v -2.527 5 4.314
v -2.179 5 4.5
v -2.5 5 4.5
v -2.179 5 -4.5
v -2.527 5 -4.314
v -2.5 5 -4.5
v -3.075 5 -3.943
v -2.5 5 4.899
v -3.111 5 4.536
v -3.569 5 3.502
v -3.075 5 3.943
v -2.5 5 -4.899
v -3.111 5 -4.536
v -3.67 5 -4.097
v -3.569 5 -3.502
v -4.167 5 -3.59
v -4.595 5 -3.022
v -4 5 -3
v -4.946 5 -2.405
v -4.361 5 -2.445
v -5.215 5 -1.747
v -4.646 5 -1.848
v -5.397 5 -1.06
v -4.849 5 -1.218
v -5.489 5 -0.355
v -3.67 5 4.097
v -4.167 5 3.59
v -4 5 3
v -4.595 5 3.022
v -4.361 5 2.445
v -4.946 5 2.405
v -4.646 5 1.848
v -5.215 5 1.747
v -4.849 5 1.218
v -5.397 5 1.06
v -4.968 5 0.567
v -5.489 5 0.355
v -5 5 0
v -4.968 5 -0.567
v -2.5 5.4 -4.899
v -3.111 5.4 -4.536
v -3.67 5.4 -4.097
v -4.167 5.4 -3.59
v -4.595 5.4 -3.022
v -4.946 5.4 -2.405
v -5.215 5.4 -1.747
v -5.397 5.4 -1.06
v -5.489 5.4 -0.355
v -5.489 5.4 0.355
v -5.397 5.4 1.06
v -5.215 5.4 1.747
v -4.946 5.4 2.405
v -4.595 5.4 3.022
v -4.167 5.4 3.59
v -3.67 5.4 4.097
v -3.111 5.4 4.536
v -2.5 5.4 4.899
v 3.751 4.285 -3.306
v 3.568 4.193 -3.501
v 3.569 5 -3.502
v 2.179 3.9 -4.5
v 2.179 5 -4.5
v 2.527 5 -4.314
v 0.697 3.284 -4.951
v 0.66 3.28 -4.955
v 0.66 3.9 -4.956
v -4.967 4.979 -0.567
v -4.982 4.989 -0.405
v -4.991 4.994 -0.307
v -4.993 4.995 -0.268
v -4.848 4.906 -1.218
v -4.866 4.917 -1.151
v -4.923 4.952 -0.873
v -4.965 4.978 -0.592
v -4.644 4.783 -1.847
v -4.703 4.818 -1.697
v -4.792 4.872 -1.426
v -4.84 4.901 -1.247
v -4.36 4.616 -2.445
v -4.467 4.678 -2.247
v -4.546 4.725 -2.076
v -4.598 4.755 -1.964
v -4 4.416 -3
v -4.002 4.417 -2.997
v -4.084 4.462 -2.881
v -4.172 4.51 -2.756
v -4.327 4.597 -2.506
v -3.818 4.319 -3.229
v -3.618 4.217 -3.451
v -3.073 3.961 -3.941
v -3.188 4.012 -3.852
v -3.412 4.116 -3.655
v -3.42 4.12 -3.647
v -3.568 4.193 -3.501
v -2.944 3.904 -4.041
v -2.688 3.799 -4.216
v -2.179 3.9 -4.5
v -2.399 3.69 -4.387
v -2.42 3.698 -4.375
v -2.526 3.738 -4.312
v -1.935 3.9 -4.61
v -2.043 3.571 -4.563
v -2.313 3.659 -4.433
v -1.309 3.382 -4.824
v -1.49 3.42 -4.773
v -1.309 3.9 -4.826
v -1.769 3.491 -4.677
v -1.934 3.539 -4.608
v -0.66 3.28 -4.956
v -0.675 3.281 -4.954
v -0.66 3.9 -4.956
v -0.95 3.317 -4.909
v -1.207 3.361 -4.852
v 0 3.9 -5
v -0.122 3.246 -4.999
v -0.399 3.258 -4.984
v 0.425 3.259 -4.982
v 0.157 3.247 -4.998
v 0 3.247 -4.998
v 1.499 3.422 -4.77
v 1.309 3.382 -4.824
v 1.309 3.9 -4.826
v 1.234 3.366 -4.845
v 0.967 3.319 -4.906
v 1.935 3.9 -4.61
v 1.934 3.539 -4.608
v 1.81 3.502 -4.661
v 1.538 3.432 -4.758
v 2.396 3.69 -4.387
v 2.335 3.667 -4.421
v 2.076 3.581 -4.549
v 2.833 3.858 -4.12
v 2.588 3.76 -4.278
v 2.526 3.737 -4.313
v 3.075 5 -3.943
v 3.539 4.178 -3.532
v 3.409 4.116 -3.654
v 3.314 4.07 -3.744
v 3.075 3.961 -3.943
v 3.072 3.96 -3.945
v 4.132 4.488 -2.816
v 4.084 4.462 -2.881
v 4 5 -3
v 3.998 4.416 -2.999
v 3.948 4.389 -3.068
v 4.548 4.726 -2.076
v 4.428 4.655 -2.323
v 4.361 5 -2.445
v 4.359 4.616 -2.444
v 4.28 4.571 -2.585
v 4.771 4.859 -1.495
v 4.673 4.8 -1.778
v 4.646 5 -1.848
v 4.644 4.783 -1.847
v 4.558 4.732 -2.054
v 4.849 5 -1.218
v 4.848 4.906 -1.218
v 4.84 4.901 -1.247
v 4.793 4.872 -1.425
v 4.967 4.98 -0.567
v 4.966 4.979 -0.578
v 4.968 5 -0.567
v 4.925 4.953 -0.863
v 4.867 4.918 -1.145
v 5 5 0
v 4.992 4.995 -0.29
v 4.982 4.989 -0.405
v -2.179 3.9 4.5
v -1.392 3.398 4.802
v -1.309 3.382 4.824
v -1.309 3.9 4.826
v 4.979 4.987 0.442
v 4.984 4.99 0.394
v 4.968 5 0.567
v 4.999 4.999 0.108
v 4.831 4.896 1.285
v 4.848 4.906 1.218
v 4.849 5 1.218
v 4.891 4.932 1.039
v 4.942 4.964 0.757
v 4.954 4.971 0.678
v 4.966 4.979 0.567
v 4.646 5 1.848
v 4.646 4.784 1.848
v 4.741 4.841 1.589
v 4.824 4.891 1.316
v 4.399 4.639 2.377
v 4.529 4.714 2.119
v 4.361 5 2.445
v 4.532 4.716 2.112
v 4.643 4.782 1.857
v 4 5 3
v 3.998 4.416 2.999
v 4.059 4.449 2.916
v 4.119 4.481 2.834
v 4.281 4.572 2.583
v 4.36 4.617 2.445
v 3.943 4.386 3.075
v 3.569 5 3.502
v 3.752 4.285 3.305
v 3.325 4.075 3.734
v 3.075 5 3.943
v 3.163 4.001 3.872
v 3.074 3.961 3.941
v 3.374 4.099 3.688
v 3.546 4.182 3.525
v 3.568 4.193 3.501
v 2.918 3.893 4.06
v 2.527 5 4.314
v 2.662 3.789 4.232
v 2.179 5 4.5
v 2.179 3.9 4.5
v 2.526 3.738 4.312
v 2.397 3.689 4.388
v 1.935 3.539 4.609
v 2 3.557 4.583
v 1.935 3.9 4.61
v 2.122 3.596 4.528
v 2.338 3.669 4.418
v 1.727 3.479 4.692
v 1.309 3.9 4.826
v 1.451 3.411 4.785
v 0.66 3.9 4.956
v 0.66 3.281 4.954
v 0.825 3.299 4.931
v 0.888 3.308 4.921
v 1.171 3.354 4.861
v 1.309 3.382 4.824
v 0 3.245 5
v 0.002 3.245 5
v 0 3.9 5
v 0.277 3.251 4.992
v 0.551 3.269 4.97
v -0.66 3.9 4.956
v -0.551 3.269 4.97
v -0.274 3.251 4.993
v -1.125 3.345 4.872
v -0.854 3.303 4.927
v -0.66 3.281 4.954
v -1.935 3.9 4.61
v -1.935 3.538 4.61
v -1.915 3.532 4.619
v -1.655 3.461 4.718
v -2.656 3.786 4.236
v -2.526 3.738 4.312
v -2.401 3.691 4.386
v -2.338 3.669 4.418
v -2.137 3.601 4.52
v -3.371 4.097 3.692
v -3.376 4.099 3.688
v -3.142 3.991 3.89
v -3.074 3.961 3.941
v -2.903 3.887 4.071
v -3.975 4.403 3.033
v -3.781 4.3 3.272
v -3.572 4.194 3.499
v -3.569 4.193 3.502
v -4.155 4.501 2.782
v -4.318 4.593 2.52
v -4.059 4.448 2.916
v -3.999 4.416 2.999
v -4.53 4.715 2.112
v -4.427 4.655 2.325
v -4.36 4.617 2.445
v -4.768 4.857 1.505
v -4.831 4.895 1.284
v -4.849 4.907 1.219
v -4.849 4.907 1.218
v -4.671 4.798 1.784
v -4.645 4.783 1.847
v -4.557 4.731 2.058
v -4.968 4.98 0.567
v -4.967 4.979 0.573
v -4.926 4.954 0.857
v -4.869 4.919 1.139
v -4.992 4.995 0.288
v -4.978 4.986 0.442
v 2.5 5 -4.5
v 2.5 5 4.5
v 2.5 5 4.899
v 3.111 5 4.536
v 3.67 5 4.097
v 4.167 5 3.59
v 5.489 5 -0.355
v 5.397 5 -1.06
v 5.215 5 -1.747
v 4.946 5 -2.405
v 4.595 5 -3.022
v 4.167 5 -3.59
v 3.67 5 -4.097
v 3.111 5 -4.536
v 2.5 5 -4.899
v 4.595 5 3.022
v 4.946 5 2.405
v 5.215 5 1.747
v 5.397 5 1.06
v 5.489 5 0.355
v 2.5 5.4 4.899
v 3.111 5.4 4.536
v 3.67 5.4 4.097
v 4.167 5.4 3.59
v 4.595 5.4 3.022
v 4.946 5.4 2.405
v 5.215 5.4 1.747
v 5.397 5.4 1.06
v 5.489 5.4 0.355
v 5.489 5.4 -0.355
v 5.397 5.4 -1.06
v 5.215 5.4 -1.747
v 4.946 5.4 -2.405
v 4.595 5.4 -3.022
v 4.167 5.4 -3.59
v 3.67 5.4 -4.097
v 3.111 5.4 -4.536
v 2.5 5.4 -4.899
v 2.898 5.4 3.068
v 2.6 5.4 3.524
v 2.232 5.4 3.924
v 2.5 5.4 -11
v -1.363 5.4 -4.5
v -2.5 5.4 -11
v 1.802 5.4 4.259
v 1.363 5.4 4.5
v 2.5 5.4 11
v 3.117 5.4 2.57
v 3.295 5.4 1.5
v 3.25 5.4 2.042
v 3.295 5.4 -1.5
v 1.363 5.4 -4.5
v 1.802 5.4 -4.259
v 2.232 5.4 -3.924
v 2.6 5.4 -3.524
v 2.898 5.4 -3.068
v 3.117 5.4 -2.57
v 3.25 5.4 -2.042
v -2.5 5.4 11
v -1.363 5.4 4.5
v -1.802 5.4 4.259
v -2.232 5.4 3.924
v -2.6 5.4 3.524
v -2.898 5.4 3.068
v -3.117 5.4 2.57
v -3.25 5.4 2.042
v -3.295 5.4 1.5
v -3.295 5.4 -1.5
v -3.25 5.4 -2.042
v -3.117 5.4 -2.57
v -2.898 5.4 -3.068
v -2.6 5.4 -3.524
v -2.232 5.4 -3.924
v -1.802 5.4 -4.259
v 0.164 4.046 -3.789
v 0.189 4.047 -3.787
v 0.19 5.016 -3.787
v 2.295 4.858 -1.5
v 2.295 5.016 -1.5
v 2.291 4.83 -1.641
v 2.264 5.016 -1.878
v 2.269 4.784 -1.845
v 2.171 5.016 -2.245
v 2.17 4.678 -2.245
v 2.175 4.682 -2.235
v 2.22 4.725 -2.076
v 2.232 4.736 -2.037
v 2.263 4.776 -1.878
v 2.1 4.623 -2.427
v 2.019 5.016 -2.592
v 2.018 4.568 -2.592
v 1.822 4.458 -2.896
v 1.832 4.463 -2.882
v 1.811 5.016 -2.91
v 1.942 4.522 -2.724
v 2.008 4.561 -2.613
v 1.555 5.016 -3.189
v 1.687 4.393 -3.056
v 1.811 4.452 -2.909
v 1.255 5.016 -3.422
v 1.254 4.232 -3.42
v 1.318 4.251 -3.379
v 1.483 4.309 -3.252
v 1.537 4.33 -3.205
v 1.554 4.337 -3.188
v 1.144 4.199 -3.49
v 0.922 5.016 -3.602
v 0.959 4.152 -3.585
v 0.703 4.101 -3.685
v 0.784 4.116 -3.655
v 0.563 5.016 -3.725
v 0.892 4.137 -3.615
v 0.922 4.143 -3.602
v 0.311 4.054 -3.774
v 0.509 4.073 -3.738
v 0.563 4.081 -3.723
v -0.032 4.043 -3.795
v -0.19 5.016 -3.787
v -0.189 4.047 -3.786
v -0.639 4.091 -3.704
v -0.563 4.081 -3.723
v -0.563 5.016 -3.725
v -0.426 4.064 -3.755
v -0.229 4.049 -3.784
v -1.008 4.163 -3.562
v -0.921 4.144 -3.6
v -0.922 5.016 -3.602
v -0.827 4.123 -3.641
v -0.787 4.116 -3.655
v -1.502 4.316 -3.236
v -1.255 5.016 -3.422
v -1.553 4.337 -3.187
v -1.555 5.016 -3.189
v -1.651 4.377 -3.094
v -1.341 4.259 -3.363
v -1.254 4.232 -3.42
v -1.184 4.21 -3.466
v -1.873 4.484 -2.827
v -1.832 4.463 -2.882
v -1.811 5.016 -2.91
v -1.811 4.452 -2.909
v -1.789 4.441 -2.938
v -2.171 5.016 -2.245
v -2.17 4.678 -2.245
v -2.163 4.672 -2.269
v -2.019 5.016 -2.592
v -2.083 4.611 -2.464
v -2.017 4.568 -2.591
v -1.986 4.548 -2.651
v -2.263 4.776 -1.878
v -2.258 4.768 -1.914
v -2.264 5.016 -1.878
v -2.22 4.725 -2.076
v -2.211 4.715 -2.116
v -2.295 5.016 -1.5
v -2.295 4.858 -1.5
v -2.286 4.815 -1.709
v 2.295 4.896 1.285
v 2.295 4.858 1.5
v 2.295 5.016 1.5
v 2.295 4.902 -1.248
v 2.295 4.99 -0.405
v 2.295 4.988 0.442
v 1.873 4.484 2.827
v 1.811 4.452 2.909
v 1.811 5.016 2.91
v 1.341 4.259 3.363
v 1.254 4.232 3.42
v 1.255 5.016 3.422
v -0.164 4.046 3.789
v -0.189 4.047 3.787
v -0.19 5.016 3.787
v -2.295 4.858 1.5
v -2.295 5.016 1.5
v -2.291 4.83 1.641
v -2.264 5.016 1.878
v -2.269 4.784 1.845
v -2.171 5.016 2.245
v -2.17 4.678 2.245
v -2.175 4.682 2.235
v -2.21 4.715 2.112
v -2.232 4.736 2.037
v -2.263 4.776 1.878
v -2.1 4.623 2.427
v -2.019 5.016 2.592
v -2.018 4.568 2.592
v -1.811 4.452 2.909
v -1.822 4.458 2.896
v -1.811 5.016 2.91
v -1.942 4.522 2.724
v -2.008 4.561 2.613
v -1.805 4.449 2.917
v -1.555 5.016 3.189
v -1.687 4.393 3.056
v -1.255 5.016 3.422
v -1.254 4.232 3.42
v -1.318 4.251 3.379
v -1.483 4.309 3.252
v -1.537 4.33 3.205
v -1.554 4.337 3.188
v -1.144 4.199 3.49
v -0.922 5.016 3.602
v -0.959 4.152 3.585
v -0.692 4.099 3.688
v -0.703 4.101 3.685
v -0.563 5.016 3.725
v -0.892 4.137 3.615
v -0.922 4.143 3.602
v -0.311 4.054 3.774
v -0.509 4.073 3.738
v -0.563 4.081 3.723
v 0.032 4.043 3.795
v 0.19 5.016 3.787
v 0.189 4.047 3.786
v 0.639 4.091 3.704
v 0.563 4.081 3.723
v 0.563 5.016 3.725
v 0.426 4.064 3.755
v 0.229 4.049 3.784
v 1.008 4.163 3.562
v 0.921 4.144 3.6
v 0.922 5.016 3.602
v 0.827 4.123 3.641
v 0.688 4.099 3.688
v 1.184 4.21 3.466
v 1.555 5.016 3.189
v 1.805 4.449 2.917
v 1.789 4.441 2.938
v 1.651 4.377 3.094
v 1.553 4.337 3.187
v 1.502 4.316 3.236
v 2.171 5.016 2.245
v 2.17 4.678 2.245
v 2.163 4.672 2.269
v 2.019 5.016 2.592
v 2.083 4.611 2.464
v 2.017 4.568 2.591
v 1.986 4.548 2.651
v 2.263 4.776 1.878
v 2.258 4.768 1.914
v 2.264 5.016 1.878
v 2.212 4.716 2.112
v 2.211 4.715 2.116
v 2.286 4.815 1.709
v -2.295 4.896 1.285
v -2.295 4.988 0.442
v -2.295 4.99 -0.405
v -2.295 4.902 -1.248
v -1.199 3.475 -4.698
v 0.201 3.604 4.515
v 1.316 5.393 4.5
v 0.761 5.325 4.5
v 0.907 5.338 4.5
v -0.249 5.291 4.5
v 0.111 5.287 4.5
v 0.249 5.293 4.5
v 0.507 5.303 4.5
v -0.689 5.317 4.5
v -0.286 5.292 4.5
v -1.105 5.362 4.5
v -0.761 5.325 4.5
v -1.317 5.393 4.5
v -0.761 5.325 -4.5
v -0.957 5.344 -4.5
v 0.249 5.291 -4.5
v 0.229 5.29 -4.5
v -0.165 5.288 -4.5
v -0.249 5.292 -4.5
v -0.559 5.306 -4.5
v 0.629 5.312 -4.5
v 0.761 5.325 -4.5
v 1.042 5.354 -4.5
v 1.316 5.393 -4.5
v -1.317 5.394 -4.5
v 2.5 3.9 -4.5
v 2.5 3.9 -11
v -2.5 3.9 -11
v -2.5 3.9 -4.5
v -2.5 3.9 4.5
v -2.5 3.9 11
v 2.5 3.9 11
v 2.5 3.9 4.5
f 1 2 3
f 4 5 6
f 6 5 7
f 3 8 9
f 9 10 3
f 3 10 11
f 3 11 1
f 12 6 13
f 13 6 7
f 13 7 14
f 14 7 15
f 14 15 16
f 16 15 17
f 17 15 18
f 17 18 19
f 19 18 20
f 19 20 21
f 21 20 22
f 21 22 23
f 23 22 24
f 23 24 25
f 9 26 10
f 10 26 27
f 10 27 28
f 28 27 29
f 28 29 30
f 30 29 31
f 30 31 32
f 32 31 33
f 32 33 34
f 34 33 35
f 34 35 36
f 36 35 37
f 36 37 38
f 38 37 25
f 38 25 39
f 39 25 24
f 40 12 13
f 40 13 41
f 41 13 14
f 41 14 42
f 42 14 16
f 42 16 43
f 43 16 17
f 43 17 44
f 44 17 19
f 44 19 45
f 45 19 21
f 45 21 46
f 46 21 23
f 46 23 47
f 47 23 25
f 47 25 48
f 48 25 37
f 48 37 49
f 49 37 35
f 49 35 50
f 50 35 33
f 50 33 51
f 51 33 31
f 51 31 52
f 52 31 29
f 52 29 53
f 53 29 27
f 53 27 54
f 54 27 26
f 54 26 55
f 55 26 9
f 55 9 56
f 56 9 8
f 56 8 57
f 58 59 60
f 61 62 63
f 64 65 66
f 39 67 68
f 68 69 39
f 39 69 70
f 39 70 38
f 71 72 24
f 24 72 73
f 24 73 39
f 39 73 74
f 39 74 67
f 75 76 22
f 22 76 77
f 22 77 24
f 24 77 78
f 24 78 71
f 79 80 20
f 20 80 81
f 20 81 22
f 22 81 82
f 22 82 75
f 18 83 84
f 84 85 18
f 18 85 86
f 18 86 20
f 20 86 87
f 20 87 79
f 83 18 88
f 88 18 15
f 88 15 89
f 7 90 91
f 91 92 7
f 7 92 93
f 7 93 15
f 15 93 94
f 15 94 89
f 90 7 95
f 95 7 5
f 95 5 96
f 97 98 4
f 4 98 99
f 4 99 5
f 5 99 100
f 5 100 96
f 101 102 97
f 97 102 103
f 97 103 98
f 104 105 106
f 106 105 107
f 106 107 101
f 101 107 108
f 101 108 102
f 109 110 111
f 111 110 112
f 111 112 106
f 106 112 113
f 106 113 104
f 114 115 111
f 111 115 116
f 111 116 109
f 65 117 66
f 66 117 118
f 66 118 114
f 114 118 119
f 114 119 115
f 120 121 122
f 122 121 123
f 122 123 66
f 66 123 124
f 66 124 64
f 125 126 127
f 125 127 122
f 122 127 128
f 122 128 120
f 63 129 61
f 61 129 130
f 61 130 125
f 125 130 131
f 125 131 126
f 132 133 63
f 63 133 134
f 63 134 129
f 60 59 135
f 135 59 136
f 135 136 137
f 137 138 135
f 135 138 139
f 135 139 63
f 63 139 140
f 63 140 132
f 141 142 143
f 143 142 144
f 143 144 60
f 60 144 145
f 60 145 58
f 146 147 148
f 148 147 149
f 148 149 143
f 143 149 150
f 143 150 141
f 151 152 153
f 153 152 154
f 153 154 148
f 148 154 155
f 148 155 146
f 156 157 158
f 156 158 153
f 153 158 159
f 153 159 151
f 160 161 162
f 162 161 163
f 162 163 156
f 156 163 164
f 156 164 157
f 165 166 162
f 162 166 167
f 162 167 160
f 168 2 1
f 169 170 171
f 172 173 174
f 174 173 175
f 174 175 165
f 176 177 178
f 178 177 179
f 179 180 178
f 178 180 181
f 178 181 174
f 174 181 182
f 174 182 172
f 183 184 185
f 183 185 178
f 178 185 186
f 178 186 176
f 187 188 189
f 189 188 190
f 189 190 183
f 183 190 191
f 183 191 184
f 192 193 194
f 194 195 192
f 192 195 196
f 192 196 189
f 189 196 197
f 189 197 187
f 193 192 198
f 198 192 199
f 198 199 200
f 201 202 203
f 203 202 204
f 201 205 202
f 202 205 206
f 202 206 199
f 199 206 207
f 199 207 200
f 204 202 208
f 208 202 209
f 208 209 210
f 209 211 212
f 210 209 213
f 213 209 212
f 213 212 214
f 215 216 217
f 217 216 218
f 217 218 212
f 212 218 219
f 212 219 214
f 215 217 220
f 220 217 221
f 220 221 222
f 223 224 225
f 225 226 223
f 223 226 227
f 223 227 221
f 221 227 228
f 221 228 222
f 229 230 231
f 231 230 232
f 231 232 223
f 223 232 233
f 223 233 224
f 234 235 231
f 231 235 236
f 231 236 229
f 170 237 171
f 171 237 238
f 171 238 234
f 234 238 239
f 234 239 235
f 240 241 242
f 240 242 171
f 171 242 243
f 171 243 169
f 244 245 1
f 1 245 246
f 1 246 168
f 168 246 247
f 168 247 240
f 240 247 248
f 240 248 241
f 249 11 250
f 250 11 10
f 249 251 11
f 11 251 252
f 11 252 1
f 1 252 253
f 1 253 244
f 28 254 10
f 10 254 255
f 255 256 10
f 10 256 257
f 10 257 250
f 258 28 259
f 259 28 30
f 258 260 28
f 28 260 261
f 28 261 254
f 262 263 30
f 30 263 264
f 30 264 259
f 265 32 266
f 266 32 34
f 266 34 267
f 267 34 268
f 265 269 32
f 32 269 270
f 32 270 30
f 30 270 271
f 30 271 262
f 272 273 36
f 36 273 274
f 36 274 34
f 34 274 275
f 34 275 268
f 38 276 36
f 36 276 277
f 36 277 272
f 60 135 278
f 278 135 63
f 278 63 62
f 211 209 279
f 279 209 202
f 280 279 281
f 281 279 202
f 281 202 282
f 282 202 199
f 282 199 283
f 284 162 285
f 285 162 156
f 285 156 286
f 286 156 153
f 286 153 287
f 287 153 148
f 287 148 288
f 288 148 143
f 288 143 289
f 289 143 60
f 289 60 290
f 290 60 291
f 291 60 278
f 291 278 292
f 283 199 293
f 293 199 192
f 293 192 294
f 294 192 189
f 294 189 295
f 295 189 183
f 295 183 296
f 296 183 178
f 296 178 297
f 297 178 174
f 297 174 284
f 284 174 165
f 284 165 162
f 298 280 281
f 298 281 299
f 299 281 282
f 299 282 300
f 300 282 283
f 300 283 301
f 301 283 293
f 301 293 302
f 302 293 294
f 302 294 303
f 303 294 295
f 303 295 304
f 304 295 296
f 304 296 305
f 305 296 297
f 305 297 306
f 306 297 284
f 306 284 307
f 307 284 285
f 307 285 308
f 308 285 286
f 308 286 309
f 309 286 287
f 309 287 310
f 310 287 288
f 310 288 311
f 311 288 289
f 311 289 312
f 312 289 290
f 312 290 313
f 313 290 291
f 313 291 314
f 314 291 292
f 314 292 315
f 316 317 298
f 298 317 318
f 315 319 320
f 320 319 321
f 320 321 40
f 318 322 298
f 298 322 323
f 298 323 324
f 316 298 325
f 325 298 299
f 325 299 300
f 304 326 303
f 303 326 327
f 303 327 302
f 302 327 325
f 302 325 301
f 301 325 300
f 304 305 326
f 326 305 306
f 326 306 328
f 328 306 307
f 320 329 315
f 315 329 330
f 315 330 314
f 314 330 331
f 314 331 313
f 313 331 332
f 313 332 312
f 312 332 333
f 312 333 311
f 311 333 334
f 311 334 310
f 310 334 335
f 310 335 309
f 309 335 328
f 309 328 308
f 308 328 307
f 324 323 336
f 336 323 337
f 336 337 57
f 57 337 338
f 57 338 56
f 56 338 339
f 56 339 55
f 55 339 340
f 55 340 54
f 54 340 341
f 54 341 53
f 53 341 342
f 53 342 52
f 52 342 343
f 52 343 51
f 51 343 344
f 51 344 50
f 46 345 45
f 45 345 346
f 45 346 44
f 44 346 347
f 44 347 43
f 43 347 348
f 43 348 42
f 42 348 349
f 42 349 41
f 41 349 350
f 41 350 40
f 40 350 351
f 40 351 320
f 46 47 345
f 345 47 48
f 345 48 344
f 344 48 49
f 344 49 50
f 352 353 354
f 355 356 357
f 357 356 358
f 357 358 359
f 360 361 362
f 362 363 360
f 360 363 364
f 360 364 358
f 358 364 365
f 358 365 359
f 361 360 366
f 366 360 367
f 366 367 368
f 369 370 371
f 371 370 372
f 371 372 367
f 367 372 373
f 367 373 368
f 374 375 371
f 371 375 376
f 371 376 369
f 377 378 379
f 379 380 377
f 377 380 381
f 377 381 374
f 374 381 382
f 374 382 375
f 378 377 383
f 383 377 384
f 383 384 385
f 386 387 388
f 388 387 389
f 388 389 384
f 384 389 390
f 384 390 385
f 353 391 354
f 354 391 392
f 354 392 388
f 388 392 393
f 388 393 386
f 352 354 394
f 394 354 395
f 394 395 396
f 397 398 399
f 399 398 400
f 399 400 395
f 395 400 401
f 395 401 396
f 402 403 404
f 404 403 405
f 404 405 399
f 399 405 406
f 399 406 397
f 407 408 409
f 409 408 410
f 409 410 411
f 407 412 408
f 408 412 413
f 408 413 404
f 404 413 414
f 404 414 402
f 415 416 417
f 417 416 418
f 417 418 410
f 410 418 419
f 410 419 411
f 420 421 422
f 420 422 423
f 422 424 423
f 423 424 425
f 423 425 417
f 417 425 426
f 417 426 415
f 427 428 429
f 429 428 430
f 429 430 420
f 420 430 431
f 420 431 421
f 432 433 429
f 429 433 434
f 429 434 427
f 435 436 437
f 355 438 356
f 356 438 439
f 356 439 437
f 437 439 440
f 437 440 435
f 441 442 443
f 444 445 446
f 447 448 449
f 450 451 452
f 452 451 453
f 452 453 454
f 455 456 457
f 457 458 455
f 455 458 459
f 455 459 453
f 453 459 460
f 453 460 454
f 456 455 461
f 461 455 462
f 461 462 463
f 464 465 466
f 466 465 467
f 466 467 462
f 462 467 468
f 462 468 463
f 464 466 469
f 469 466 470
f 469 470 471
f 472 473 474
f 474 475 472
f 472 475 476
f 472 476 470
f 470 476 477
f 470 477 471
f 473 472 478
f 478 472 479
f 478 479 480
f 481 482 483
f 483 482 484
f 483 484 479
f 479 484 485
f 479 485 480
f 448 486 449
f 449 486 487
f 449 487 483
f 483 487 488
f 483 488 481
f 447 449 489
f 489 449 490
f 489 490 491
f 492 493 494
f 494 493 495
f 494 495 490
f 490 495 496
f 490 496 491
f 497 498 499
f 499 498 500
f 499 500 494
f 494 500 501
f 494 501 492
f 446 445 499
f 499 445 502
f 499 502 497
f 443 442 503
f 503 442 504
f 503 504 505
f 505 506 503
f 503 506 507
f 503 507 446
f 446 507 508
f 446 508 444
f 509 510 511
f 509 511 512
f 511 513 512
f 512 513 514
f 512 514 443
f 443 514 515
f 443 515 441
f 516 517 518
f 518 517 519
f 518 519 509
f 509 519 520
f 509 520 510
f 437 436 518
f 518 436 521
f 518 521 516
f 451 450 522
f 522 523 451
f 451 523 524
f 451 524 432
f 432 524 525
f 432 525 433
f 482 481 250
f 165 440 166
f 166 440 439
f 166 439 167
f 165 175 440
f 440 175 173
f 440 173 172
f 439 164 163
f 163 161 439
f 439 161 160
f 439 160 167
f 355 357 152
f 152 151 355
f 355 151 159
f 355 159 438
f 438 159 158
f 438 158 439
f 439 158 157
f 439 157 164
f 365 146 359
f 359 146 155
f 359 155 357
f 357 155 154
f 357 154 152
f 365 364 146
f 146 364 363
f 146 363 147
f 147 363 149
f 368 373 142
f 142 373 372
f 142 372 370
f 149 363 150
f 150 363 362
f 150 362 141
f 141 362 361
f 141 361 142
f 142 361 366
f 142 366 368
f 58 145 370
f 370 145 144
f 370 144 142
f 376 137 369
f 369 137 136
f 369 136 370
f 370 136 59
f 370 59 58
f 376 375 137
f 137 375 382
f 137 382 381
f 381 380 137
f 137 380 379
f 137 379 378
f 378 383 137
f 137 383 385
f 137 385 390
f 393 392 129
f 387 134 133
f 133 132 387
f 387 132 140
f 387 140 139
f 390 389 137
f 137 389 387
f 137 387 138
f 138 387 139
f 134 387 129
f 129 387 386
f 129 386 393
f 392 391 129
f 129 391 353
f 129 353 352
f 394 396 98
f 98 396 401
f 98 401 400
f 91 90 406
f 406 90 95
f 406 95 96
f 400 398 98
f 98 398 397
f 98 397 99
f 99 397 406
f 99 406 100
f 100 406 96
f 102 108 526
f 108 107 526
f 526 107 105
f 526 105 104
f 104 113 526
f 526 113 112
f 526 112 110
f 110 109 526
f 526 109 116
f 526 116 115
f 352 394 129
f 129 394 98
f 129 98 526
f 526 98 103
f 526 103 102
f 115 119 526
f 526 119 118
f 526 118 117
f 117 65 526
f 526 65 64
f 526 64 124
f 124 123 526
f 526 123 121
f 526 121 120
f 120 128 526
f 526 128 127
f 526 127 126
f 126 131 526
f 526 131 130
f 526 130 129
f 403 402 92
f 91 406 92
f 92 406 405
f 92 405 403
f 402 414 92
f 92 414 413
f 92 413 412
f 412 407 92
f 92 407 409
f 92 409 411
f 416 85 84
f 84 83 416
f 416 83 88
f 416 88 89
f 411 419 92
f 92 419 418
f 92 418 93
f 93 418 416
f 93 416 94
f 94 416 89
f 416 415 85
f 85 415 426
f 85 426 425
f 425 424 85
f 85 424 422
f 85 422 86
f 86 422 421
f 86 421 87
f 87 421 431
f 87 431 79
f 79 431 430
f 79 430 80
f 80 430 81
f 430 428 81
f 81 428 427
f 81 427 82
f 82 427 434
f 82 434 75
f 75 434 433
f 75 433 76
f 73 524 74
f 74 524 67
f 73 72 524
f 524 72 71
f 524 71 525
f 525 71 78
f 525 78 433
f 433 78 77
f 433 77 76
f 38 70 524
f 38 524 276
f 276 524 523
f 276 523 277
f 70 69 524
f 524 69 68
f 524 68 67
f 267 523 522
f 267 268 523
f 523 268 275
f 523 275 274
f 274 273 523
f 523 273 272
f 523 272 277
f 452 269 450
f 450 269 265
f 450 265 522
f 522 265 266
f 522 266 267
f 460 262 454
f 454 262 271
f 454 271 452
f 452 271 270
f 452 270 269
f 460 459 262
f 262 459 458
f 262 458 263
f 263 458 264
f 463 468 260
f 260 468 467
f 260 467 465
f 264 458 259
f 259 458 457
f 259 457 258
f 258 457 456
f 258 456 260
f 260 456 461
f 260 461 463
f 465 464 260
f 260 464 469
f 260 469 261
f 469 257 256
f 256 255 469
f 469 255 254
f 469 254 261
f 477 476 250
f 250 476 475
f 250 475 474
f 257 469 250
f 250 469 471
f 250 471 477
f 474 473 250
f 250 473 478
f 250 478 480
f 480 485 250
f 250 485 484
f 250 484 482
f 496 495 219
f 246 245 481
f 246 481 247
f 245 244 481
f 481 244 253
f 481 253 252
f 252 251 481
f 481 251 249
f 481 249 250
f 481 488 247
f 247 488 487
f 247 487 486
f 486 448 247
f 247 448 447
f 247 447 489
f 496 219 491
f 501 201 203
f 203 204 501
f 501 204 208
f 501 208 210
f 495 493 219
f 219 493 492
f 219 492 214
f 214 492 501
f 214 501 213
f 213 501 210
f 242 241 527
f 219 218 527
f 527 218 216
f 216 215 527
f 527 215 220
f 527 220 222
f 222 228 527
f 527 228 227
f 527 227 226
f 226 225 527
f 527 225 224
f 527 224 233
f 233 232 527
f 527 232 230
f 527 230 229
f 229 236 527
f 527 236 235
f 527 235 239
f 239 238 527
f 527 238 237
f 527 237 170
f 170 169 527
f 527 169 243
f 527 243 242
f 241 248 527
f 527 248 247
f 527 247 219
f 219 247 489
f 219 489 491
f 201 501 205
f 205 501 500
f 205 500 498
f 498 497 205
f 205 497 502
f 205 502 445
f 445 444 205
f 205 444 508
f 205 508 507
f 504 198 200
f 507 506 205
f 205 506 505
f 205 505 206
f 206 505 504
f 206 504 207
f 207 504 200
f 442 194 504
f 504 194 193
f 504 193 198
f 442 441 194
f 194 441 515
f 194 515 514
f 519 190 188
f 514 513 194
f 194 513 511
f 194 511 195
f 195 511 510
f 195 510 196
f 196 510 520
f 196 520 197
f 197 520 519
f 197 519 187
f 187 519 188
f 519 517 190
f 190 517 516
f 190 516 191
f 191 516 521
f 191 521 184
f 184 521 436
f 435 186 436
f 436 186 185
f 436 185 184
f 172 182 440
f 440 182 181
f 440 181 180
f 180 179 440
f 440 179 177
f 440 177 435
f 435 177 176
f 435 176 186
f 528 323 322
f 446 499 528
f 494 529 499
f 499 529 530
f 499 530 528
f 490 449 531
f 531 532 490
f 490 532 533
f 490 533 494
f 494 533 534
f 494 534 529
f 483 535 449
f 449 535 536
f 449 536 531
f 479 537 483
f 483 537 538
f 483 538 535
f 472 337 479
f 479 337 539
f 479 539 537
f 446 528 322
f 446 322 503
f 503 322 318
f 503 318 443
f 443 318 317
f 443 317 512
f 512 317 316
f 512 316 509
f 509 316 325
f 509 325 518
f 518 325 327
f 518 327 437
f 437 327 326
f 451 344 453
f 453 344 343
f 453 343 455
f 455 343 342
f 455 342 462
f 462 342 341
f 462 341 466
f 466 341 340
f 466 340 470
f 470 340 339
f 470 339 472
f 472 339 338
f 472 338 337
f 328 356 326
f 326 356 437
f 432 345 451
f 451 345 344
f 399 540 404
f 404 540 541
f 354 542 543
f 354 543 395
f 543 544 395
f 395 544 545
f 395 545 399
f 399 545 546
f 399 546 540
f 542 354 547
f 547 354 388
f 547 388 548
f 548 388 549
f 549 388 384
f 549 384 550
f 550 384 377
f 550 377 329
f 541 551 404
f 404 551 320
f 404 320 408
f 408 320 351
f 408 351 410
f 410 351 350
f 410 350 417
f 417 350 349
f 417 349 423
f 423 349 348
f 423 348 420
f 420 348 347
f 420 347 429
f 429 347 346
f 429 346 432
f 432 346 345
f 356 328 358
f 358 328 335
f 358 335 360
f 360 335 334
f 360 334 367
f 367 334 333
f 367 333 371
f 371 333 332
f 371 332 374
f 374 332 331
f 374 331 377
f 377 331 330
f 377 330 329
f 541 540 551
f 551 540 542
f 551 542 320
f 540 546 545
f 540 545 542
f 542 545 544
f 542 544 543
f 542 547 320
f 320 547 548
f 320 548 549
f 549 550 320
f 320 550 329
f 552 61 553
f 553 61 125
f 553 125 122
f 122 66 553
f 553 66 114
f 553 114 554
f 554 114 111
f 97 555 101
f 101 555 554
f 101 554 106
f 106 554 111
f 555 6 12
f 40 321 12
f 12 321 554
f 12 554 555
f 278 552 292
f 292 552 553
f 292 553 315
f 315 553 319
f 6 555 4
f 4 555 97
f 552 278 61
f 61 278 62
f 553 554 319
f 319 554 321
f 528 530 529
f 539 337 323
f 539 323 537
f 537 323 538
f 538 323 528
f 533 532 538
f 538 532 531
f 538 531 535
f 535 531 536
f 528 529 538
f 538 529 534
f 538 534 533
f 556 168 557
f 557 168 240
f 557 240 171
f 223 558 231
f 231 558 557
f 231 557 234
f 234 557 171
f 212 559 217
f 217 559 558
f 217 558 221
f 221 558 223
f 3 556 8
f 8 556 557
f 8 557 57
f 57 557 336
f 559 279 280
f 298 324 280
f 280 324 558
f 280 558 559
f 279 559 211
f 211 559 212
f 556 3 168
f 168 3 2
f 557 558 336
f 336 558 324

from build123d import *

# Parameters (mm, degrees)
SKETCH1_R               = 5
BOSS_EXTRUDE1_DEPTH     = 5
SKETCH2_R               = 5.5
BOSS_EXTRUDE2_DEPTH     = 0.4
CUT_EXTRUDE1_DEPTH      = 6.4
SKETCH5_R               = 8
CUT_EXTRUDE2_DEPTH      = 6.5
CUT_EXTRUDE2_DEPTH_BACK = 6.5
CHAMFER4_SIZE           = 1
CHAMFER4_SIZE2          = 0.383864035
SKETCH7_W               = 5
SKETCH7_H               = 6.5
BOSS_EXTRUDE4_DEPTH     = 1.5


with BuildPart() as part:
    # Sketch1 → Boss-Extrude1 (new body)
    with BuildSketch(Plane(origin=(0, 0, 0), x_dir=(1, 0, 0), z_dir=(0, 1, 0))):
        Circle(SKETCH1_R)
    extrude(amount=BOSS_EXTRUDE1_DEPTH)

    # Sketch2 → Boss-Extrude2 (add)
    with BuildSketch(Plane(origin=(0, 5, 0), x_dir=(1, 0, 0), z_dir=(0, 1, 0))):
        Circle(SKETCH2_R)
    extrude(amount=BOSS_EXTRUDE2_DEPTH)

    # Sketch4 → Cut-Extrude1 (cut, through all)
    with BuildSketch(Plane(origin=(0, 5.4, 0), x_dir=(1, 0, 0), z_dir=(0, 1, 0))):
        with BuildLine():
            Line((2.295250379, 1.5), (2.295250379, -1.5))
            ThreePointArc((2.295250379, -1.5), (0, -3.795250379), (-2.295250379, -1.5))
            Line((-2.295250379, -1.5), (-2.295250379, 1.5))
            ThreePointArc((-2.295250379, 1.5), (0, 3.795250379), (2.295250379, 1.5))
        make_face()
    extrude(amount=-CUT_EXTRUDE1_DEPTH, mode=Mode.SUBTRACT)

    # Sketch5 → Cut-Extrude2 (cut, two sides)
    with BuildSketch(Plane(origin=(0, 0, 0), x_dir=(0, 0, -1), z_dir=(1, 0, 0))) as cut_extrude2_sk:
        with Locations((0, -3)):
            Circle(SKETCH5_R)
    extrude(amount=CUT_EXTRUDE2_DEPTH, mode=Mode.SUBTRACT)
    extrude(cut_extrude2_sk.sketch, amount=-CUT_EXTRUDE2_DEPTH_BACK, mode=Mode.SUBTRACT)

    # Chamfer4
    chamfer4_edges = [part.edges().sort_by_distance(p)[0] for p in [
        (0, 5.4, -3.795250379),
        (-2.295250379, 5.4, 0),
        (0, 5.4, 3.795250379),
        (2.295250379, 5.4, 0),
    ]]
    chamfer4_side = [part.faces().sort_by_distance(p)[0] for p in [
        (-5.344436508, 5.4, 0),
    ]]
    chamfer(chamfer4_edges, length=CHAMFER4_SIZE, length2=CHAMFER4_SIZE2, reference=chamfer4_side[0])

    # Sketch7 → Boss-Extrude4 (add)
    with BuildSketch(Plane(origin=(0, 5.4, 0), x_dir=(1, 0, 0), z_dir=(0, 1, 0))):
        with Locations((0, 7.75)):
            Rectangle(SKETCH7_W, SKETCH7_H)
        with Locations((0, -7.75)):
            Rectangle(SKETCH7_W, SKETCH7_H)
    extrude(amount=-BOSS_EXTRUDE4_DEPTH)


solid = part.part
